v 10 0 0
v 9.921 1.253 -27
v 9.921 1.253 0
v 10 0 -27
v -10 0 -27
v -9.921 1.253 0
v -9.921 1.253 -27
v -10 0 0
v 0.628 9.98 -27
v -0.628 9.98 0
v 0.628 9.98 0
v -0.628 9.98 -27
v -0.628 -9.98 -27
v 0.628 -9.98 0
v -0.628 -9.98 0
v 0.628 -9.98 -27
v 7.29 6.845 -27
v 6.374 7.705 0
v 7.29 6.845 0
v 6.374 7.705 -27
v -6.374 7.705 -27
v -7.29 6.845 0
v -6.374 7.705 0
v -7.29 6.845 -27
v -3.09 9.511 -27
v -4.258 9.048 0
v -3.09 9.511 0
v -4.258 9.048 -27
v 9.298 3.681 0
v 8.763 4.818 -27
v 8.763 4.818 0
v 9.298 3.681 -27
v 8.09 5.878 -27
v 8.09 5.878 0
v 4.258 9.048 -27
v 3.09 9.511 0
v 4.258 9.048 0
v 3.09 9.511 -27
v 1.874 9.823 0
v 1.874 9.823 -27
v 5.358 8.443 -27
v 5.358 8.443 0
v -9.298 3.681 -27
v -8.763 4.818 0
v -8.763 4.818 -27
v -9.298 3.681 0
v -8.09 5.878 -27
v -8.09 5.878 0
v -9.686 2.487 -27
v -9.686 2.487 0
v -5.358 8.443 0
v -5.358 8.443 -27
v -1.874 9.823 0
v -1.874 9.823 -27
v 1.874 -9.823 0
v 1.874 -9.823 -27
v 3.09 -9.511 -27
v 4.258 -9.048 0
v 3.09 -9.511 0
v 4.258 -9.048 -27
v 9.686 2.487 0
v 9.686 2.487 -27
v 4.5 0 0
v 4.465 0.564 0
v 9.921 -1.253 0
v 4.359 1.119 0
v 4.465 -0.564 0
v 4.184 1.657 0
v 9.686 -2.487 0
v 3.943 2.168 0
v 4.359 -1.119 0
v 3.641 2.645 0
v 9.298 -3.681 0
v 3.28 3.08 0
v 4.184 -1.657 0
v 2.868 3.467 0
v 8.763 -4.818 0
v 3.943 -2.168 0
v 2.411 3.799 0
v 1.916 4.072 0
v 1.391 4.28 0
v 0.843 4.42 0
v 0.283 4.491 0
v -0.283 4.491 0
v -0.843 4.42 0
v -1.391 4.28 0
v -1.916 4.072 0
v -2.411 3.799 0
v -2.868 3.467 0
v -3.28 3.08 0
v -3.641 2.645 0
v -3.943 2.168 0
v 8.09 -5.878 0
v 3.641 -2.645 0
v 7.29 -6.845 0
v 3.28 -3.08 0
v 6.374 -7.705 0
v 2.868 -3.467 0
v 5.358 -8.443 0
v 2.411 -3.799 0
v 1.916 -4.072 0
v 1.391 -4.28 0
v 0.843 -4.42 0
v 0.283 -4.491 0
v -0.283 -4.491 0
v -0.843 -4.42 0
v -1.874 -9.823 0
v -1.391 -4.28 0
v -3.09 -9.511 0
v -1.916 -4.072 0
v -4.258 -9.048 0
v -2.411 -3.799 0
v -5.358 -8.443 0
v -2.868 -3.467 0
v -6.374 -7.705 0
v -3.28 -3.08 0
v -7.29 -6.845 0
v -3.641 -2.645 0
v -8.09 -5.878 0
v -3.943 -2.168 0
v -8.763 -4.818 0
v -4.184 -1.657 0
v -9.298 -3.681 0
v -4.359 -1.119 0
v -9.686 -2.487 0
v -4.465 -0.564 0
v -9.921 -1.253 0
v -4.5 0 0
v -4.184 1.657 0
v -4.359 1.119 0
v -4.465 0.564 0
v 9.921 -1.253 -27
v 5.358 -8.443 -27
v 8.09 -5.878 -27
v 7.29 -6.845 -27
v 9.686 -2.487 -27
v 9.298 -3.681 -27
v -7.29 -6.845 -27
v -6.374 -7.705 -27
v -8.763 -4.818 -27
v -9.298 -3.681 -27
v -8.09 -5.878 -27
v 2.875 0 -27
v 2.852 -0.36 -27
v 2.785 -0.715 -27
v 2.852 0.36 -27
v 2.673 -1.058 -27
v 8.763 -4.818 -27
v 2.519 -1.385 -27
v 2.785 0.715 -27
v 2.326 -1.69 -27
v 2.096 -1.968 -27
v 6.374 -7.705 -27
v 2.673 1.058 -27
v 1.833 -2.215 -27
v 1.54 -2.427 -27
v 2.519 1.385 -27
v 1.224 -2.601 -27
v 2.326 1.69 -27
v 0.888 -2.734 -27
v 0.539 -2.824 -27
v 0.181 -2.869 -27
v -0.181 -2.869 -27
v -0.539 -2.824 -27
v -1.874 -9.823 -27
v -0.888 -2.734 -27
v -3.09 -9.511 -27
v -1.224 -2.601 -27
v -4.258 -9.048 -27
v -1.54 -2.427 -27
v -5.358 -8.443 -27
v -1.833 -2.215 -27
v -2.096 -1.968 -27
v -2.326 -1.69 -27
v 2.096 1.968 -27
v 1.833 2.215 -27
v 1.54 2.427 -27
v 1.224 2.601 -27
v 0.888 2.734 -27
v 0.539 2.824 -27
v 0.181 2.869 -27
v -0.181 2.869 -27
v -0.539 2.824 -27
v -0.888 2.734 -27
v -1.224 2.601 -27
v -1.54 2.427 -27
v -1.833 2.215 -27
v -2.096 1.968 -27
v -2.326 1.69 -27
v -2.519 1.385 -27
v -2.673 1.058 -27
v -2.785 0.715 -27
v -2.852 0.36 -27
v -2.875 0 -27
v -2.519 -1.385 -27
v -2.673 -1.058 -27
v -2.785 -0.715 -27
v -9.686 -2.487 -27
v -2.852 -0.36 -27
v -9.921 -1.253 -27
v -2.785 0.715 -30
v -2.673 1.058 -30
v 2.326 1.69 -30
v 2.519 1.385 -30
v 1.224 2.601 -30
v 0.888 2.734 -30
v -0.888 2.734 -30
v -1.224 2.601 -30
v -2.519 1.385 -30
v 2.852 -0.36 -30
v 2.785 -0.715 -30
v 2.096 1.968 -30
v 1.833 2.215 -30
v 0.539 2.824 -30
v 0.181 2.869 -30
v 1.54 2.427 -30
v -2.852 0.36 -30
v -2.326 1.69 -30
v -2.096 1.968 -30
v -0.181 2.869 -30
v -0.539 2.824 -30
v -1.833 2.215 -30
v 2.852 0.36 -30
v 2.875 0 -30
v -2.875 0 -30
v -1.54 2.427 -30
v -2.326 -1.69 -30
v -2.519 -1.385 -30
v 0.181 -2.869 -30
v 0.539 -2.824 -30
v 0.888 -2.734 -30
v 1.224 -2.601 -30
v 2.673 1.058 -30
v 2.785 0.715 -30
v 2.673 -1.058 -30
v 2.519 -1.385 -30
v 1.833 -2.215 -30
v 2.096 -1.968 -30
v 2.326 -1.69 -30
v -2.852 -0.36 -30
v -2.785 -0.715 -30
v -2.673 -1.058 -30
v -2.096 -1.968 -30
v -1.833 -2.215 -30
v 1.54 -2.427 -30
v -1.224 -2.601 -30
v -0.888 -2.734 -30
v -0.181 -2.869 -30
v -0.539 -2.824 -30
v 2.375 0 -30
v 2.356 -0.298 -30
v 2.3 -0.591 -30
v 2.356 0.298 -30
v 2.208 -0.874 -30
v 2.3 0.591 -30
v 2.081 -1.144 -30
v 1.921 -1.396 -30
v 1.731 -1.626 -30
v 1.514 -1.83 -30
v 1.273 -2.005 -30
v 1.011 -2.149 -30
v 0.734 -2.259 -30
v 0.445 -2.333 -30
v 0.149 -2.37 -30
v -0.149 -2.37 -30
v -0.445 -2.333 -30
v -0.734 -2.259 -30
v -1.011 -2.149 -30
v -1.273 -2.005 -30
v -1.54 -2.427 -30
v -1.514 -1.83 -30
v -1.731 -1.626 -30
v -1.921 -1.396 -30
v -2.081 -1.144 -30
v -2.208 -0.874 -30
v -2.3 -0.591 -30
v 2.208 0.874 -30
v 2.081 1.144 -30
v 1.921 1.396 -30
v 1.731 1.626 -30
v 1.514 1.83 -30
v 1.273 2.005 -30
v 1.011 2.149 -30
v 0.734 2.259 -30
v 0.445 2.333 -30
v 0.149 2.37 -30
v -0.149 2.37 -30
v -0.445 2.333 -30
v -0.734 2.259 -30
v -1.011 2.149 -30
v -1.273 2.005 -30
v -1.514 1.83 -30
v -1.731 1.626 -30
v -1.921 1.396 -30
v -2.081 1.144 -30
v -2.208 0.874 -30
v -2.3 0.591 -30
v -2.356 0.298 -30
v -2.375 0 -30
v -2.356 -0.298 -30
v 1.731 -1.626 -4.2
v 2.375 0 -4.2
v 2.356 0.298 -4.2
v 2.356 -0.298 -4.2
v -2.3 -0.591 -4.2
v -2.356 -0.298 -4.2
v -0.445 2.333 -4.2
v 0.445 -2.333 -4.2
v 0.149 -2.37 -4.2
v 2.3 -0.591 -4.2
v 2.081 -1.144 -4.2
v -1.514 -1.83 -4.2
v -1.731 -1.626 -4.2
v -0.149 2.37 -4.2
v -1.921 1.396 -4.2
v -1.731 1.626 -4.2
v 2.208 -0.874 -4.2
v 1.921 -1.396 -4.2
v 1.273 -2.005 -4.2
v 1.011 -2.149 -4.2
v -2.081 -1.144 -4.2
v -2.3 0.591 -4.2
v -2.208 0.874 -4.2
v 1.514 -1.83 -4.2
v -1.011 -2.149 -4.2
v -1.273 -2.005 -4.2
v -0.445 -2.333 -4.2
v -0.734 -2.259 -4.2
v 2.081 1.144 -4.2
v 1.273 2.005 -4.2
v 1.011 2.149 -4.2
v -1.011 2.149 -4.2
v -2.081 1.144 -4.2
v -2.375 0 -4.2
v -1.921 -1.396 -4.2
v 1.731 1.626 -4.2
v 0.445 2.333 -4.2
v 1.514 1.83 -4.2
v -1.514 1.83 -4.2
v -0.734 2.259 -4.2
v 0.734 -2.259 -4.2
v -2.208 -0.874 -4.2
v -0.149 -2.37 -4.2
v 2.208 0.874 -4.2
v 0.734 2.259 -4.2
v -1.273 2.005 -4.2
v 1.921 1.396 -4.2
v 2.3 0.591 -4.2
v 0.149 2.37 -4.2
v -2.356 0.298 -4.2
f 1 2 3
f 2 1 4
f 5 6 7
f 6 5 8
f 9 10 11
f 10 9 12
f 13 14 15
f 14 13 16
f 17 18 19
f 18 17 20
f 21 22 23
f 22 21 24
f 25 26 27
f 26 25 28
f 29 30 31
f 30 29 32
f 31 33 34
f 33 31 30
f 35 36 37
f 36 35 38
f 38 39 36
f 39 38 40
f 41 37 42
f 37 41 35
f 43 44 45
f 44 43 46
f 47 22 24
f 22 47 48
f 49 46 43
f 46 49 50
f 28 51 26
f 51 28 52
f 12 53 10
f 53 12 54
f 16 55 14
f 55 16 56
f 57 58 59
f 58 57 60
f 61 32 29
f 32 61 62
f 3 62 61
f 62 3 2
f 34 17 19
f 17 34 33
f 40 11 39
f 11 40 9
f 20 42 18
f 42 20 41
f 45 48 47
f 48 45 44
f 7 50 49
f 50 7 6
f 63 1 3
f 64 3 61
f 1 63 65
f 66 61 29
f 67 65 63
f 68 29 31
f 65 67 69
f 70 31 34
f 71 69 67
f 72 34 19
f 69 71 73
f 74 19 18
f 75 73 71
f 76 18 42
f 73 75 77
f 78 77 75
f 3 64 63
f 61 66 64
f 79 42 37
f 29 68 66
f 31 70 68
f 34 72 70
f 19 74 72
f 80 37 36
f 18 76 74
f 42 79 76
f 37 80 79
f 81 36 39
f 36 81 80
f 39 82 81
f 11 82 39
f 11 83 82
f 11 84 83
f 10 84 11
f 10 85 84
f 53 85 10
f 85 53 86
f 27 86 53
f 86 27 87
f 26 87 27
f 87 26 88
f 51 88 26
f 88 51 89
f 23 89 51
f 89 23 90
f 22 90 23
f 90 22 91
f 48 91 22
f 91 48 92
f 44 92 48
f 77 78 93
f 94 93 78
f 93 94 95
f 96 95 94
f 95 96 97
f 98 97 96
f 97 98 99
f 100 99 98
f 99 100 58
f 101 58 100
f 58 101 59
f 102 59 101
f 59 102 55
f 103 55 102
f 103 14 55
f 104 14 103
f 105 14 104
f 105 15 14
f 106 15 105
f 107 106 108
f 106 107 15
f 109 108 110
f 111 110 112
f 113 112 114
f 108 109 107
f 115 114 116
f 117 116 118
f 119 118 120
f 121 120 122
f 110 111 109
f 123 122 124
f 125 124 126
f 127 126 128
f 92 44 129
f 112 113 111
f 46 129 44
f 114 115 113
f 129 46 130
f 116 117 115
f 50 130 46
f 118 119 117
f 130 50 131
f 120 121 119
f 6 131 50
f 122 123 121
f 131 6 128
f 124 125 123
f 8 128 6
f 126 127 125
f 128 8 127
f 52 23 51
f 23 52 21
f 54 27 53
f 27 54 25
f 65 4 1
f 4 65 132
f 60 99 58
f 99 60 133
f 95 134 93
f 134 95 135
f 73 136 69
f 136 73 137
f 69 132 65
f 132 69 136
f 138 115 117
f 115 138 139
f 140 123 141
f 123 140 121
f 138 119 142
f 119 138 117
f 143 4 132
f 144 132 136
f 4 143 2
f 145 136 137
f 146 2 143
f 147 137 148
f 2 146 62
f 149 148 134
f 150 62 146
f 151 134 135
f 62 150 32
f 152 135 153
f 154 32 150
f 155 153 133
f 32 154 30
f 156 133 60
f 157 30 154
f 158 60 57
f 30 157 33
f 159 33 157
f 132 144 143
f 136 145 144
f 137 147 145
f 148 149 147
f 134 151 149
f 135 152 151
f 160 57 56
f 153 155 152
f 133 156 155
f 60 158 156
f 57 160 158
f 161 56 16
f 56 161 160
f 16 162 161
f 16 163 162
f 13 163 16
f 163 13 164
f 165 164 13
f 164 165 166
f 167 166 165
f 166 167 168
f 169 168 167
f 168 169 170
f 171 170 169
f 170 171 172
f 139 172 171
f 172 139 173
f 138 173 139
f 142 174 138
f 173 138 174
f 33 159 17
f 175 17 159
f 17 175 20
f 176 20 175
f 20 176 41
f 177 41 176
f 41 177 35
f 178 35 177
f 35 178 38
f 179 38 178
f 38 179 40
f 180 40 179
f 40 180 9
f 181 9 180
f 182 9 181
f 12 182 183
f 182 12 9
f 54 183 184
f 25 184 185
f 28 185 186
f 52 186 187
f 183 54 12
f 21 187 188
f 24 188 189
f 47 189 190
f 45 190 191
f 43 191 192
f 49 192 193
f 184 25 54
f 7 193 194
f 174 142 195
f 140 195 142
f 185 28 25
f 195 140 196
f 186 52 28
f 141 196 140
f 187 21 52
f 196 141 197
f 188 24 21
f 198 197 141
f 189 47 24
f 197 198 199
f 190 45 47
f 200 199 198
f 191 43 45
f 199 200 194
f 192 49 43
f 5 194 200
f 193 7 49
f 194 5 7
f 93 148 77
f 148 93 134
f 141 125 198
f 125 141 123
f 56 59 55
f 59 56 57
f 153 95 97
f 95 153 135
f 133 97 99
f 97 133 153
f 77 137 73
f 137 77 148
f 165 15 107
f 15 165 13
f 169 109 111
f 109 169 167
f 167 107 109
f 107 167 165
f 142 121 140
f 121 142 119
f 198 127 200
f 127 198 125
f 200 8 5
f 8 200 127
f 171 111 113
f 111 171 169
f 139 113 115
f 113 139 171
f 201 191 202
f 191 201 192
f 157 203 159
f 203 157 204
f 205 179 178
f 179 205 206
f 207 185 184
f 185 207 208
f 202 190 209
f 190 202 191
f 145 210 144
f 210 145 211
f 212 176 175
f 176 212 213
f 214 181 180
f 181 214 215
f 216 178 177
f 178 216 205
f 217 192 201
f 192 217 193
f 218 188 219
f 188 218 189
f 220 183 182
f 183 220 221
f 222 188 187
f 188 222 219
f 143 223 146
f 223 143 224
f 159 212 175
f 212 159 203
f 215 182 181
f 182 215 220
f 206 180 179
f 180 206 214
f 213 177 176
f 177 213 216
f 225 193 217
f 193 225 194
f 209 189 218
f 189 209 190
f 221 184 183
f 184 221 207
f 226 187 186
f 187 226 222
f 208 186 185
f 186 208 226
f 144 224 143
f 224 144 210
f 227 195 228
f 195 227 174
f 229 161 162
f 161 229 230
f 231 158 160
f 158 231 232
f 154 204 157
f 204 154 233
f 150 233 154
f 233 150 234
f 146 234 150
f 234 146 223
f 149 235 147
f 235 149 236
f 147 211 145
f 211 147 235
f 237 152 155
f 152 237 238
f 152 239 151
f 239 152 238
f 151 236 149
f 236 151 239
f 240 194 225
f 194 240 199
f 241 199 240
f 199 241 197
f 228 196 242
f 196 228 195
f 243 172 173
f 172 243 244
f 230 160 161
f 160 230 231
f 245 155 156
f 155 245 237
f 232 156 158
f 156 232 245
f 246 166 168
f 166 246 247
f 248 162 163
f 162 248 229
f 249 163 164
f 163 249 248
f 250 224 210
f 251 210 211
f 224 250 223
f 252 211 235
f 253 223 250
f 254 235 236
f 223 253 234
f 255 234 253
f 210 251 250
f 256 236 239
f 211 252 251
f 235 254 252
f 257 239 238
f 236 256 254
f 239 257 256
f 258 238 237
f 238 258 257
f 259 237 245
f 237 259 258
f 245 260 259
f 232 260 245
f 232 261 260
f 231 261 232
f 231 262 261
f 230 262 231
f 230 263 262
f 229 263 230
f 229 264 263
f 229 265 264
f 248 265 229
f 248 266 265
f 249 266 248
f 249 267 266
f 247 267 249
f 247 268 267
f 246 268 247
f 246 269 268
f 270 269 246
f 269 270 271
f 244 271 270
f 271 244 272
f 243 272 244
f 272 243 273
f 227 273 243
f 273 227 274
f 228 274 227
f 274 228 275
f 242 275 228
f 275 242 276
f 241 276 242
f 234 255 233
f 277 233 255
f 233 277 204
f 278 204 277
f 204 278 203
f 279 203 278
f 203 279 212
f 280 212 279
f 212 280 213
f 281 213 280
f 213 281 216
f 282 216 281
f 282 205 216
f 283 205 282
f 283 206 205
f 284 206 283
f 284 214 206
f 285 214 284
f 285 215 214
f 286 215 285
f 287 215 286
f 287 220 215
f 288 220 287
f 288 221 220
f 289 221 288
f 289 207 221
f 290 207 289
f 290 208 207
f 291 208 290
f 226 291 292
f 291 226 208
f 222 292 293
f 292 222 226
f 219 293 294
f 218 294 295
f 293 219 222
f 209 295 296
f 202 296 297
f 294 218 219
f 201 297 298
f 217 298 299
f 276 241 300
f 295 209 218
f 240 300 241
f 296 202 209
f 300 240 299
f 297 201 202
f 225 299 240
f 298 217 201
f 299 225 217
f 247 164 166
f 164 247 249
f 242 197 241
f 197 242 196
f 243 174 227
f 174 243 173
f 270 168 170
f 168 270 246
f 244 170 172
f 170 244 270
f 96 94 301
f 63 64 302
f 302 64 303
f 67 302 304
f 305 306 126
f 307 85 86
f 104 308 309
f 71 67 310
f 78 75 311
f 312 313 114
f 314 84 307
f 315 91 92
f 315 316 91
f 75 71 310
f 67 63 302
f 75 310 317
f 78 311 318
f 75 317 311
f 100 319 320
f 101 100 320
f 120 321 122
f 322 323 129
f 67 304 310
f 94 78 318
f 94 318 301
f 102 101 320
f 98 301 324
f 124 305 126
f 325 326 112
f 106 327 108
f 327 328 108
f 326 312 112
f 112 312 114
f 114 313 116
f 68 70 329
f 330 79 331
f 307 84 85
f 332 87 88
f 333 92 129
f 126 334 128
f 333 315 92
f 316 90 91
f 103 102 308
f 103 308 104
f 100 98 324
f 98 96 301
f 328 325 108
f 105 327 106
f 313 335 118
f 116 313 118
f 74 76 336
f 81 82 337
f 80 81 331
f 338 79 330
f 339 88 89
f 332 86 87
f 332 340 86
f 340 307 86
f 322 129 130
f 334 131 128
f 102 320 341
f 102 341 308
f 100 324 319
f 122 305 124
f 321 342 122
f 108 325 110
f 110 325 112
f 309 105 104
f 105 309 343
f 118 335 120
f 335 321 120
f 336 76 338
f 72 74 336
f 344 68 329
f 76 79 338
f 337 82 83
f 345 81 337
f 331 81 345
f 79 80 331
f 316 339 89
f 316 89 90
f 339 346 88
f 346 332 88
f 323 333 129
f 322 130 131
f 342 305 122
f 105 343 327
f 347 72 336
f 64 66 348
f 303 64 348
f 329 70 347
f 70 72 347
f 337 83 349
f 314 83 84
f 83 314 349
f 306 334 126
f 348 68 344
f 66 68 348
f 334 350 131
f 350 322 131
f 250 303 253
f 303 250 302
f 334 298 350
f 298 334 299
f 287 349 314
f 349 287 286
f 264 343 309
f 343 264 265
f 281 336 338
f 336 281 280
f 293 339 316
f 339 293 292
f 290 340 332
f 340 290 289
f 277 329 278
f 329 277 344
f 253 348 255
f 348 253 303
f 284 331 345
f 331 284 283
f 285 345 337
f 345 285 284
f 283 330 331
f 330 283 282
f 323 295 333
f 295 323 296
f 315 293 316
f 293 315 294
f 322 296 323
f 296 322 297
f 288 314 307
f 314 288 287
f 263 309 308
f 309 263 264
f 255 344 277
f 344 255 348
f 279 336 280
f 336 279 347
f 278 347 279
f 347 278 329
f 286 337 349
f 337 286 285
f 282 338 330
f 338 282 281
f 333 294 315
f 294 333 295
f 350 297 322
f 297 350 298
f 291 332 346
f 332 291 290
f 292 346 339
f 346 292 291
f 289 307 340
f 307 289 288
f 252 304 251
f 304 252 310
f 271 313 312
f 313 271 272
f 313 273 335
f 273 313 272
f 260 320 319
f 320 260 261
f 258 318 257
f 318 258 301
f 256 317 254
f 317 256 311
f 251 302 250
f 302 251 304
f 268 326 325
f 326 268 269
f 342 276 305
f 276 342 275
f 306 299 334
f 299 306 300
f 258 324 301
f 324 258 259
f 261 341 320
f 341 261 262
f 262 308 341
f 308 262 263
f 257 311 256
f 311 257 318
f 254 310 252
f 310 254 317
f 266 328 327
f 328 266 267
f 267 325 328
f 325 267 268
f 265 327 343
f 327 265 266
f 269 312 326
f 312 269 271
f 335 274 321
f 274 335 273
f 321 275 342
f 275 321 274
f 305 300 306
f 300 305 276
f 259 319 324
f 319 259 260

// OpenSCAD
$fn = 50;


difference() {
	union() {
		translate(v = [0, 0, -27.0000000000]) {
			cylinder(h = 27, r = 10.0000000000);
		}
		#translate(v = [0, 0, -30.0000000000]) {
			cylinder(h = 30, r = 2.8750000000);
		}
	}
	union() {
		translate(v = [0, 0, 0]) {
			rotate(a = [0, 0, 0]) {
				difference() {
					union() {
						translate(v = [0, 0, -30.0000000000]) {
							cylinder(h = 30, r = 2.2500000000);
						}
						translate(v = [0, 0, -4.2000000000]) {
							cylinder(h = 4.2000000000, r1 = 2.3750000000, r2 = 4.5000000000);
						}
						translate(v = [0, 0, -30.0000000000]) {
							cylinder(h = 30, r = 2.3750000000);
						}
						translate(v = [0, 0, -30.0000000000]) {
							cylinder(h = 30, r = 2.2500000000);
						}
					}
					union();
				}
			}
		}
	}
}
